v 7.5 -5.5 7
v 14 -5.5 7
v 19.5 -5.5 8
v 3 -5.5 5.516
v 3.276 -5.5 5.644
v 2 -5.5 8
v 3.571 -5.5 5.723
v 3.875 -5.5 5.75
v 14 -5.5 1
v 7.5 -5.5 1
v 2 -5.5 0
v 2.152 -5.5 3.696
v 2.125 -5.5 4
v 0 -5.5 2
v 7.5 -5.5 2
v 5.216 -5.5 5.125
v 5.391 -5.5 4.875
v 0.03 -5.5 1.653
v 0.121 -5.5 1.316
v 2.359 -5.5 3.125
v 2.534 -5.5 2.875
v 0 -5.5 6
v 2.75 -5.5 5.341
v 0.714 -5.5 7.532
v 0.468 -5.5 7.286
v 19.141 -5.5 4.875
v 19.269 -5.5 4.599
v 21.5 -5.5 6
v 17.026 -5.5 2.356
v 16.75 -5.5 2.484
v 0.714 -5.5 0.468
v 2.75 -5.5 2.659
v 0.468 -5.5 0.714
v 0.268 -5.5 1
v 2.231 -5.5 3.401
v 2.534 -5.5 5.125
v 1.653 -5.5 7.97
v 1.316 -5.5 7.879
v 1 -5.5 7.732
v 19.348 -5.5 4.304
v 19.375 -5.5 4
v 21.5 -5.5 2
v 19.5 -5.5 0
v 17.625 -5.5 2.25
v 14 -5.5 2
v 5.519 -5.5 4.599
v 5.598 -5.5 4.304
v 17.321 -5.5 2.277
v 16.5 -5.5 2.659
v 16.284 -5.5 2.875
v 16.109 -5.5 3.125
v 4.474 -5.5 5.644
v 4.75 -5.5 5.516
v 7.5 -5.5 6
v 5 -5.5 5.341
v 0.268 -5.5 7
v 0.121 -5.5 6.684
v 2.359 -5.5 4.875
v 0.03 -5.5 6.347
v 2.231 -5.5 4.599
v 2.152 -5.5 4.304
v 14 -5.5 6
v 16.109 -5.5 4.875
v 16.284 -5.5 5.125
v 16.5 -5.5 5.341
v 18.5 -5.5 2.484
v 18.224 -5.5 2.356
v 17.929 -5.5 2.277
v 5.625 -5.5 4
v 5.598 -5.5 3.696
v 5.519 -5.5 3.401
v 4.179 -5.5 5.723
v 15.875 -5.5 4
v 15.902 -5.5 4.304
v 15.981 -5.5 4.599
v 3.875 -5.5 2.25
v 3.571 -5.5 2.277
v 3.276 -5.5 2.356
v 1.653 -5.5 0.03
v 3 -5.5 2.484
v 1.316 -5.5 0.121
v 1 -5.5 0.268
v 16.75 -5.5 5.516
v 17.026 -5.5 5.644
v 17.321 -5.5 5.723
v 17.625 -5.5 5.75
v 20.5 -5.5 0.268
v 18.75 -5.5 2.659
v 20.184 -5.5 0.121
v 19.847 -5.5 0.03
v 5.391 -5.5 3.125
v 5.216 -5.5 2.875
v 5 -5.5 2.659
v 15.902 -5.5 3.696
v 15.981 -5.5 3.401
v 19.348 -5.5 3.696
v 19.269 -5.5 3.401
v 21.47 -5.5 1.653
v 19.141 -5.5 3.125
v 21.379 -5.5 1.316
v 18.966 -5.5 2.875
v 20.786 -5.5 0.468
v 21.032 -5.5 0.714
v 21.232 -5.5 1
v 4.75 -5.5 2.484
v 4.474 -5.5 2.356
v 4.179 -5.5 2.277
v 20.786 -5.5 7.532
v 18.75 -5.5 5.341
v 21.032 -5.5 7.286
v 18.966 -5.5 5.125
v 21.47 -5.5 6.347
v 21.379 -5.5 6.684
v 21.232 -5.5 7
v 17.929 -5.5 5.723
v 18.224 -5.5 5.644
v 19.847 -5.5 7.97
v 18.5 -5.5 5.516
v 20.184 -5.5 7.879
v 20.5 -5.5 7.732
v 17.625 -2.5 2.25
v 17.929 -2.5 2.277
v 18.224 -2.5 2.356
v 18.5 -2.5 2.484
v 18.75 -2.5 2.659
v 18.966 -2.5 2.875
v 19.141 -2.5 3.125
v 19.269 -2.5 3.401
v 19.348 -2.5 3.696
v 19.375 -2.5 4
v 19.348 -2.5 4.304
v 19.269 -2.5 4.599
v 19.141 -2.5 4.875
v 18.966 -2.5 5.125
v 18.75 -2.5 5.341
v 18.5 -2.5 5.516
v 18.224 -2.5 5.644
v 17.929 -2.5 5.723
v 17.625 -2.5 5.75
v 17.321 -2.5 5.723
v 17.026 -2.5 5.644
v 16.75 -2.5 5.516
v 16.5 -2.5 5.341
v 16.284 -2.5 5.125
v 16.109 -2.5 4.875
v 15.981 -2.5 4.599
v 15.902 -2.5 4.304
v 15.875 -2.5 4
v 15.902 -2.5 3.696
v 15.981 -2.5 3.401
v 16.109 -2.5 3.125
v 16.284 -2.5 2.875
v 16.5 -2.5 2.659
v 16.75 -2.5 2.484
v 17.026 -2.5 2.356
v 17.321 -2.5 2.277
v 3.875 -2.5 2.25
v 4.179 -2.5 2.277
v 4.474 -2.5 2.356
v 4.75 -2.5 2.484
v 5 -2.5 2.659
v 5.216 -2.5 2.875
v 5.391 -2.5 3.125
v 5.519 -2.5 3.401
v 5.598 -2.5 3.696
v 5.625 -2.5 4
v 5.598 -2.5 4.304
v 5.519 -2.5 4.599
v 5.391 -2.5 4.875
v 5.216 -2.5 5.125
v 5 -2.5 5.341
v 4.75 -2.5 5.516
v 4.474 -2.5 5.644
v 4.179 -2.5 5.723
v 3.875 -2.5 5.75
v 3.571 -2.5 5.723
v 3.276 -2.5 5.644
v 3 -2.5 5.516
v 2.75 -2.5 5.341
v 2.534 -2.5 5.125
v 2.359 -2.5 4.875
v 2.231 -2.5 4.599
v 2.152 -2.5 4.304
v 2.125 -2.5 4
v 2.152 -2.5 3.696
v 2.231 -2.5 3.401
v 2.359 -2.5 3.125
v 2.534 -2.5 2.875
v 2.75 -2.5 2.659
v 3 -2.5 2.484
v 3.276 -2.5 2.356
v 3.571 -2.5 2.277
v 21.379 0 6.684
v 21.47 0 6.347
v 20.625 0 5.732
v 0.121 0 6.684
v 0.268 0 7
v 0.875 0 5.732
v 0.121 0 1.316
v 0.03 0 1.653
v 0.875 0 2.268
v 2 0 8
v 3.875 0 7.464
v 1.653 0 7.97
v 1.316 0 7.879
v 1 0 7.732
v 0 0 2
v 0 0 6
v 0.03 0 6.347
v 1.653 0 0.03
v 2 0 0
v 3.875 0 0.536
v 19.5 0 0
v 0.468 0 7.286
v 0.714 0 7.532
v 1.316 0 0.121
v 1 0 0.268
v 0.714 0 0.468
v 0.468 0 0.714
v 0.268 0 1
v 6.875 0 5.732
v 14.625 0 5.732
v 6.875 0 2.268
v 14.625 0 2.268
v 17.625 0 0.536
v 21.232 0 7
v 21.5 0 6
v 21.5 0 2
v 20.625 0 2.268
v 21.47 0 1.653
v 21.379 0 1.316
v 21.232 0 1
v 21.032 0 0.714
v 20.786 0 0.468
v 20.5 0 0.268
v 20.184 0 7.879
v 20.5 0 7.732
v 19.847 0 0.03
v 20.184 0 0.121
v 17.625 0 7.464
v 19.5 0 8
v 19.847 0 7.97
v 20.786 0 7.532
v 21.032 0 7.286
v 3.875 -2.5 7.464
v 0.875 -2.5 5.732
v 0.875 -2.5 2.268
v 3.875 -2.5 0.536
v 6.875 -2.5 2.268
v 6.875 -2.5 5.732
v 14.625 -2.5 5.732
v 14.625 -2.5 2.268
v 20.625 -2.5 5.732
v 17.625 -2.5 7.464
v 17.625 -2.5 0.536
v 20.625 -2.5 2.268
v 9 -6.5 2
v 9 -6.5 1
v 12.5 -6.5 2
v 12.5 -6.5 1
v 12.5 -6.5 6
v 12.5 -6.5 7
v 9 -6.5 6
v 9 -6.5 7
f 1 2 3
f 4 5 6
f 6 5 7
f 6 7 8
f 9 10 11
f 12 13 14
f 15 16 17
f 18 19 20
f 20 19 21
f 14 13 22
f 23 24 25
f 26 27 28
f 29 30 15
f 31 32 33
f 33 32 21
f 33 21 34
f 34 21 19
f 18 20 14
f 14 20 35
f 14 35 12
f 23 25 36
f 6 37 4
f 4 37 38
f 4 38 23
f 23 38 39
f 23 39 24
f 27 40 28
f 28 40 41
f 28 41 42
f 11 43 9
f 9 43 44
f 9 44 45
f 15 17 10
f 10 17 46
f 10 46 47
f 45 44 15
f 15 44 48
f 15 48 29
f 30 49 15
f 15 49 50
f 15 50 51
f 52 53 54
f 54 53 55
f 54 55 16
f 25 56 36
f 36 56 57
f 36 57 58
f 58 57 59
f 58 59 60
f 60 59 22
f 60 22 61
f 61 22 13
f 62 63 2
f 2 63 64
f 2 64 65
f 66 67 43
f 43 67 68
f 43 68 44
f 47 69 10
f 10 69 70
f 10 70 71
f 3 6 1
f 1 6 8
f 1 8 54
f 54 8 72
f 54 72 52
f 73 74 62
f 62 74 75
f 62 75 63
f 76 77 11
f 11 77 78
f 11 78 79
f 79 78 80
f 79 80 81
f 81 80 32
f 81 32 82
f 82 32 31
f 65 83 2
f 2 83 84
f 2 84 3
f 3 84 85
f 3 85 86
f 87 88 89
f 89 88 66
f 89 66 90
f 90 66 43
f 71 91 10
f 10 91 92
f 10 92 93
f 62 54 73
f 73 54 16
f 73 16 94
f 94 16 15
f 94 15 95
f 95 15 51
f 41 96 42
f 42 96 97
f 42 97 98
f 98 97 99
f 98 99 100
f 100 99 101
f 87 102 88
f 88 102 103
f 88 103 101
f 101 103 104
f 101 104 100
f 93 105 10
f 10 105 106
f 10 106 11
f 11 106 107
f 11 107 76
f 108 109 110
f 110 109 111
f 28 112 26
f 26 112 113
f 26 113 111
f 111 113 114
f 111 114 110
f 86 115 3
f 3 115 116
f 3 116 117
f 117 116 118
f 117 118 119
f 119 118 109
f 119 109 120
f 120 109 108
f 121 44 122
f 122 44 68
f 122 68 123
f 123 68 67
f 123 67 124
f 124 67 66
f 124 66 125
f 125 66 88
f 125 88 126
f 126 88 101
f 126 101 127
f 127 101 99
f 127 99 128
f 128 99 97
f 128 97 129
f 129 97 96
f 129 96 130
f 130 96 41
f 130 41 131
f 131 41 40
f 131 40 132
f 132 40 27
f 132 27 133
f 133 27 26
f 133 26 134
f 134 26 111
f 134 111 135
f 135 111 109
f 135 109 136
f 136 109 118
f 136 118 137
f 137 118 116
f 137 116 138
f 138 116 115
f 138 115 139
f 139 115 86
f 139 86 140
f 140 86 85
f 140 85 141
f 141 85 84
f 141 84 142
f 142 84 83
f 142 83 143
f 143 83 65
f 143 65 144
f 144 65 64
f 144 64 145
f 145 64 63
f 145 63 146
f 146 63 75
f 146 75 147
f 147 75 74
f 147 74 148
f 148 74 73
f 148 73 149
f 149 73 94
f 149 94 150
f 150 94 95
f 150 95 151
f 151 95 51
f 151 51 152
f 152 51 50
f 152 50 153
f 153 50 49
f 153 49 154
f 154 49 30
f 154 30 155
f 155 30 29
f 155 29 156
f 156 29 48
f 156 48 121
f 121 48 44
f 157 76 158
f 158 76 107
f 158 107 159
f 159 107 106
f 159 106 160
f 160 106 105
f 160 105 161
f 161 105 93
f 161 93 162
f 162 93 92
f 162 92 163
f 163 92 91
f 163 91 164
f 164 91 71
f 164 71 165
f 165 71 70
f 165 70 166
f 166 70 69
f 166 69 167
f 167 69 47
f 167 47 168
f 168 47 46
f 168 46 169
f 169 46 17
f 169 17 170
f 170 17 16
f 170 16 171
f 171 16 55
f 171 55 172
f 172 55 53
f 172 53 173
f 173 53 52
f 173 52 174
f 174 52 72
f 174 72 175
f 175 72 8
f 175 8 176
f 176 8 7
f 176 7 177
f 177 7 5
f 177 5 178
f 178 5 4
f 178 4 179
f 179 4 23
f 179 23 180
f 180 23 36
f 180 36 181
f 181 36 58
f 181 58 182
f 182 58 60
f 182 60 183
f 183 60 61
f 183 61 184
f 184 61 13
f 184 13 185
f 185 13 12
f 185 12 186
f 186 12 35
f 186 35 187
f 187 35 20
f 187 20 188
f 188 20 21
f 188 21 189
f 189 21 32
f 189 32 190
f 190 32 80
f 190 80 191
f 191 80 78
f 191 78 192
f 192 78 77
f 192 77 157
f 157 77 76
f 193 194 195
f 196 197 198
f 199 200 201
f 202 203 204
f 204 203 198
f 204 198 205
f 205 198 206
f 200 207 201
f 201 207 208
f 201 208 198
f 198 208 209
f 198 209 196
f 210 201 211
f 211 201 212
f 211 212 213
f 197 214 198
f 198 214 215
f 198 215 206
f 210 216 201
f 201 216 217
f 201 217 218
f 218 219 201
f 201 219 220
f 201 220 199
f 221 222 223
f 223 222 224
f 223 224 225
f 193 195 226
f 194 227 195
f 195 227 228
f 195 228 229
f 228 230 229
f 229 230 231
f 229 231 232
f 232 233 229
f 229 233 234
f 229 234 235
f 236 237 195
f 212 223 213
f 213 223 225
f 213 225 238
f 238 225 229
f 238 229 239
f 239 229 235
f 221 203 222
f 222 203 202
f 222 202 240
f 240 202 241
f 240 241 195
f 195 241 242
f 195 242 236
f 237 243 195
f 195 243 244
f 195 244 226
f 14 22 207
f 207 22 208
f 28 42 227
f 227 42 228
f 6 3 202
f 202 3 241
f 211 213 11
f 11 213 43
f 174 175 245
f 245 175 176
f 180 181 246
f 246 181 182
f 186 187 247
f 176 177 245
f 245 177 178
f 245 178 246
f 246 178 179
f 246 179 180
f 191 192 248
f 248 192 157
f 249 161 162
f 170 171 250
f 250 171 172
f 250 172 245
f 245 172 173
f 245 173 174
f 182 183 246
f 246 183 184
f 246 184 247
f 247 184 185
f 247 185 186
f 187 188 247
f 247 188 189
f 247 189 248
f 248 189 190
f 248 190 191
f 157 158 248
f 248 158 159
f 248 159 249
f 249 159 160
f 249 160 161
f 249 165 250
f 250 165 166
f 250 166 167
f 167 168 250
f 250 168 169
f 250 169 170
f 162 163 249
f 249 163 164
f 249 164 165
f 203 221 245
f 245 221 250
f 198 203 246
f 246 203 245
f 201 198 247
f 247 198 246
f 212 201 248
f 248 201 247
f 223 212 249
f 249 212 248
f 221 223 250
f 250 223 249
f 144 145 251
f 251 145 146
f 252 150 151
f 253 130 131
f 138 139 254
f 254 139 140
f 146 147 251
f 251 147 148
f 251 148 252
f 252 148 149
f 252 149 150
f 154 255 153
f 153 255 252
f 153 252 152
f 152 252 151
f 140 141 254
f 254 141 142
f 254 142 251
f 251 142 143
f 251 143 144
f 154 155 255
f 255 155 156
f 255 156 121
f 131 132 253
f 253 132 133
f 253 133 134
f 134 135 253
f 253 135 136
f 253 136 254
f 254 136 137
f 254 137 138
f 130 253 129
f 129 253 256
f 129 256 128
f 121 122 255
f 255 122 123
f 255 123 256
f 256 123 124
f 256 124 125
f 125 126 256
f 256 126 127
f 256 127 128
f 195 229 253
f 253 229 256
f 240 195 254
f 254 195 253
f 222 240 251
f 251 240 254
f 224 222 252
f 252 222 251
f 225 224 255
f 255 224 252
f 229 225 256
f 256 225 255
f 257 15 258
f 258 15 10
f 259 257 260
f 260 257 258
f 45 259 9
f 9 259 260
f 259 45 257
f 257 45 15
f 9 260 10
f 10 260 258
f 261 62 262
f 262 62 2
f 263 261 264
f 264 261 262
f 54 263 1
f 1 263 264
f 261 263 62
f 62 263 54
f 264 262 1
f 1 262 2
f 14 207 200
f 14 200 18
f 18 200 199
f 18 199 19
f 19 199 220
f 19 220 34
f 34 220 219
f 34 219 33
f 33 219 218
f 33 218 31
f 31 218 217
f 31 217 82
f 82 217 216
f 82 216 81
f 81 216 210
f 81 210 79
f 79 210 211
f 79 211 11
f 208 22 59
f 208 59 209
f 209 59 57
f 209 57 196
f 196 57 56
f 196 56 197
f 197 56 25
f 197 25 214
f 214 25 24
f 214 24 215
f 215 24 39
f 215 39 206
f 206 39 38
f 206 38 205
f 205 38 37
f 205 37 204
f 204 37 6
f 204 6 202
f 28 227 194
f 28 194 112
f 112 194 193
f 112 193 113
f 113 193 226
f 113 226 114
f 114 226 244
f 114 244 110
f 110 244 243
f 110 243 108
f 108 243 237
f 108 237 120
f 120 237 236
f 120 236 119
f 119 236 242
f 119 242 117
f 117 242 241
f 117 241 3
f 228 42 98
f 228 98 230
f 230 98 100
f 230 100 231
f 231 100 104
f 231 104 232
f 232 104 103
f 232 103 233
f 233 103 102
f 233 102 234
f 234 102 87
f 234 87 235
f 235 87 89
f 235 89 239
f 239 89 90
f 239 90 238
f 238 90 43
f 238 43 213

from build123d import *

# Parameters (mm, degrees)
SKETCH1_W           = 21.5
SKETCH1_H           = 5.5
BOSS_EXTRUDE1_DEPTH = 8
SKETCH2_R           = 1.75
CUT_EXTRUDE1_DEPTH  = 6.5
CUT_EXTRUDE2_DEPTH  = 2.5
BOSS_EXTRUDE3_DEPTH = 1
BOSS_EXTRUDE4_DEPTH = 1
FILLET1_R           = 2


with BuildPart() as part:
    # Sketch1 → Boss-Extrude1 (new body)
    with BuildSketch(Plane.XY):
        with Locations((10.75, -2.75)):
            Rectangle(SKETCH1_W, SKETCH1_H)
    extrude(amount=BOSS_EXTRUDE1_DEPTH)

    # Sketch2 → Cut-Extrude1 (cut, through all)
    with BuildSketch(Plane.XZ.offset(5.5)):
        with Locations((3.875, 4)):
            Circle(SKETCH2_R)
        with Locations((17.625, 4)):
            Circle(SKETCH2_R)
    extrude(amount=-CUT_EXTRUDE1_DEPTH, mode=Mode.SUBTRACT)

    # Sketch3 → Cut-Extrude2 (cut)
    with BuildSketch(Plane(origin=(0, 0, 0), x_dir=(1, 0, 0), z_dir=(0, 1, 0))):
        Polygon((6.875, -5.732050808), (6.875, -2.267949192), (3.875, -0.535898385), (0.875, -2.267949192), (0.875, -5.732050808), (3.875, -7.464101615), align=None)
        Polygon((20.625, -2.267949192), (17.625, -0.535898385), (14.625, -2.267949192), (14.625, -5.732050808), (17.625, -7.464101615), (20.625, -5.732050808), align=None)
    extrude(amount=-CUT_EXTRUDE2_DEPTH, mode=Mode.SUBTRACT)

    # Sketch4 → Boss-Extrude3 (add)
    with BuildSketch(Plane.XY.offset(1)):
        Polygon((7.5, -5.5), (14, -5.5), (12.5, -6.5), (9, -6.5), align=None)
    extrude(amount=BOSS_EXTRUDE3_DEPTH)

    # Sketch5 → Boss-Extrude4 (add)
    with BuildSketch(Plane.XY.offset(7)):
        Polygon((7.5, -5.5), (9, -6.5), (12.5, -6.5), (14, -5.5), align=None)
    extrude(amount=-BOSS_EXTRUDE4_DEPTH)

    # Fillet1
    fillet1_edges = [part.edges().sort_by_distance(p)[0] for p in [
        (21.5, -2.75, 8),
        (21.5, -2.75, 0),
        (0, -2.75, 0),
        (0, -2.75, 8),
    ]]
    fillet(fillet1_edges, radius=FILLET1_R)


solid = part.part
